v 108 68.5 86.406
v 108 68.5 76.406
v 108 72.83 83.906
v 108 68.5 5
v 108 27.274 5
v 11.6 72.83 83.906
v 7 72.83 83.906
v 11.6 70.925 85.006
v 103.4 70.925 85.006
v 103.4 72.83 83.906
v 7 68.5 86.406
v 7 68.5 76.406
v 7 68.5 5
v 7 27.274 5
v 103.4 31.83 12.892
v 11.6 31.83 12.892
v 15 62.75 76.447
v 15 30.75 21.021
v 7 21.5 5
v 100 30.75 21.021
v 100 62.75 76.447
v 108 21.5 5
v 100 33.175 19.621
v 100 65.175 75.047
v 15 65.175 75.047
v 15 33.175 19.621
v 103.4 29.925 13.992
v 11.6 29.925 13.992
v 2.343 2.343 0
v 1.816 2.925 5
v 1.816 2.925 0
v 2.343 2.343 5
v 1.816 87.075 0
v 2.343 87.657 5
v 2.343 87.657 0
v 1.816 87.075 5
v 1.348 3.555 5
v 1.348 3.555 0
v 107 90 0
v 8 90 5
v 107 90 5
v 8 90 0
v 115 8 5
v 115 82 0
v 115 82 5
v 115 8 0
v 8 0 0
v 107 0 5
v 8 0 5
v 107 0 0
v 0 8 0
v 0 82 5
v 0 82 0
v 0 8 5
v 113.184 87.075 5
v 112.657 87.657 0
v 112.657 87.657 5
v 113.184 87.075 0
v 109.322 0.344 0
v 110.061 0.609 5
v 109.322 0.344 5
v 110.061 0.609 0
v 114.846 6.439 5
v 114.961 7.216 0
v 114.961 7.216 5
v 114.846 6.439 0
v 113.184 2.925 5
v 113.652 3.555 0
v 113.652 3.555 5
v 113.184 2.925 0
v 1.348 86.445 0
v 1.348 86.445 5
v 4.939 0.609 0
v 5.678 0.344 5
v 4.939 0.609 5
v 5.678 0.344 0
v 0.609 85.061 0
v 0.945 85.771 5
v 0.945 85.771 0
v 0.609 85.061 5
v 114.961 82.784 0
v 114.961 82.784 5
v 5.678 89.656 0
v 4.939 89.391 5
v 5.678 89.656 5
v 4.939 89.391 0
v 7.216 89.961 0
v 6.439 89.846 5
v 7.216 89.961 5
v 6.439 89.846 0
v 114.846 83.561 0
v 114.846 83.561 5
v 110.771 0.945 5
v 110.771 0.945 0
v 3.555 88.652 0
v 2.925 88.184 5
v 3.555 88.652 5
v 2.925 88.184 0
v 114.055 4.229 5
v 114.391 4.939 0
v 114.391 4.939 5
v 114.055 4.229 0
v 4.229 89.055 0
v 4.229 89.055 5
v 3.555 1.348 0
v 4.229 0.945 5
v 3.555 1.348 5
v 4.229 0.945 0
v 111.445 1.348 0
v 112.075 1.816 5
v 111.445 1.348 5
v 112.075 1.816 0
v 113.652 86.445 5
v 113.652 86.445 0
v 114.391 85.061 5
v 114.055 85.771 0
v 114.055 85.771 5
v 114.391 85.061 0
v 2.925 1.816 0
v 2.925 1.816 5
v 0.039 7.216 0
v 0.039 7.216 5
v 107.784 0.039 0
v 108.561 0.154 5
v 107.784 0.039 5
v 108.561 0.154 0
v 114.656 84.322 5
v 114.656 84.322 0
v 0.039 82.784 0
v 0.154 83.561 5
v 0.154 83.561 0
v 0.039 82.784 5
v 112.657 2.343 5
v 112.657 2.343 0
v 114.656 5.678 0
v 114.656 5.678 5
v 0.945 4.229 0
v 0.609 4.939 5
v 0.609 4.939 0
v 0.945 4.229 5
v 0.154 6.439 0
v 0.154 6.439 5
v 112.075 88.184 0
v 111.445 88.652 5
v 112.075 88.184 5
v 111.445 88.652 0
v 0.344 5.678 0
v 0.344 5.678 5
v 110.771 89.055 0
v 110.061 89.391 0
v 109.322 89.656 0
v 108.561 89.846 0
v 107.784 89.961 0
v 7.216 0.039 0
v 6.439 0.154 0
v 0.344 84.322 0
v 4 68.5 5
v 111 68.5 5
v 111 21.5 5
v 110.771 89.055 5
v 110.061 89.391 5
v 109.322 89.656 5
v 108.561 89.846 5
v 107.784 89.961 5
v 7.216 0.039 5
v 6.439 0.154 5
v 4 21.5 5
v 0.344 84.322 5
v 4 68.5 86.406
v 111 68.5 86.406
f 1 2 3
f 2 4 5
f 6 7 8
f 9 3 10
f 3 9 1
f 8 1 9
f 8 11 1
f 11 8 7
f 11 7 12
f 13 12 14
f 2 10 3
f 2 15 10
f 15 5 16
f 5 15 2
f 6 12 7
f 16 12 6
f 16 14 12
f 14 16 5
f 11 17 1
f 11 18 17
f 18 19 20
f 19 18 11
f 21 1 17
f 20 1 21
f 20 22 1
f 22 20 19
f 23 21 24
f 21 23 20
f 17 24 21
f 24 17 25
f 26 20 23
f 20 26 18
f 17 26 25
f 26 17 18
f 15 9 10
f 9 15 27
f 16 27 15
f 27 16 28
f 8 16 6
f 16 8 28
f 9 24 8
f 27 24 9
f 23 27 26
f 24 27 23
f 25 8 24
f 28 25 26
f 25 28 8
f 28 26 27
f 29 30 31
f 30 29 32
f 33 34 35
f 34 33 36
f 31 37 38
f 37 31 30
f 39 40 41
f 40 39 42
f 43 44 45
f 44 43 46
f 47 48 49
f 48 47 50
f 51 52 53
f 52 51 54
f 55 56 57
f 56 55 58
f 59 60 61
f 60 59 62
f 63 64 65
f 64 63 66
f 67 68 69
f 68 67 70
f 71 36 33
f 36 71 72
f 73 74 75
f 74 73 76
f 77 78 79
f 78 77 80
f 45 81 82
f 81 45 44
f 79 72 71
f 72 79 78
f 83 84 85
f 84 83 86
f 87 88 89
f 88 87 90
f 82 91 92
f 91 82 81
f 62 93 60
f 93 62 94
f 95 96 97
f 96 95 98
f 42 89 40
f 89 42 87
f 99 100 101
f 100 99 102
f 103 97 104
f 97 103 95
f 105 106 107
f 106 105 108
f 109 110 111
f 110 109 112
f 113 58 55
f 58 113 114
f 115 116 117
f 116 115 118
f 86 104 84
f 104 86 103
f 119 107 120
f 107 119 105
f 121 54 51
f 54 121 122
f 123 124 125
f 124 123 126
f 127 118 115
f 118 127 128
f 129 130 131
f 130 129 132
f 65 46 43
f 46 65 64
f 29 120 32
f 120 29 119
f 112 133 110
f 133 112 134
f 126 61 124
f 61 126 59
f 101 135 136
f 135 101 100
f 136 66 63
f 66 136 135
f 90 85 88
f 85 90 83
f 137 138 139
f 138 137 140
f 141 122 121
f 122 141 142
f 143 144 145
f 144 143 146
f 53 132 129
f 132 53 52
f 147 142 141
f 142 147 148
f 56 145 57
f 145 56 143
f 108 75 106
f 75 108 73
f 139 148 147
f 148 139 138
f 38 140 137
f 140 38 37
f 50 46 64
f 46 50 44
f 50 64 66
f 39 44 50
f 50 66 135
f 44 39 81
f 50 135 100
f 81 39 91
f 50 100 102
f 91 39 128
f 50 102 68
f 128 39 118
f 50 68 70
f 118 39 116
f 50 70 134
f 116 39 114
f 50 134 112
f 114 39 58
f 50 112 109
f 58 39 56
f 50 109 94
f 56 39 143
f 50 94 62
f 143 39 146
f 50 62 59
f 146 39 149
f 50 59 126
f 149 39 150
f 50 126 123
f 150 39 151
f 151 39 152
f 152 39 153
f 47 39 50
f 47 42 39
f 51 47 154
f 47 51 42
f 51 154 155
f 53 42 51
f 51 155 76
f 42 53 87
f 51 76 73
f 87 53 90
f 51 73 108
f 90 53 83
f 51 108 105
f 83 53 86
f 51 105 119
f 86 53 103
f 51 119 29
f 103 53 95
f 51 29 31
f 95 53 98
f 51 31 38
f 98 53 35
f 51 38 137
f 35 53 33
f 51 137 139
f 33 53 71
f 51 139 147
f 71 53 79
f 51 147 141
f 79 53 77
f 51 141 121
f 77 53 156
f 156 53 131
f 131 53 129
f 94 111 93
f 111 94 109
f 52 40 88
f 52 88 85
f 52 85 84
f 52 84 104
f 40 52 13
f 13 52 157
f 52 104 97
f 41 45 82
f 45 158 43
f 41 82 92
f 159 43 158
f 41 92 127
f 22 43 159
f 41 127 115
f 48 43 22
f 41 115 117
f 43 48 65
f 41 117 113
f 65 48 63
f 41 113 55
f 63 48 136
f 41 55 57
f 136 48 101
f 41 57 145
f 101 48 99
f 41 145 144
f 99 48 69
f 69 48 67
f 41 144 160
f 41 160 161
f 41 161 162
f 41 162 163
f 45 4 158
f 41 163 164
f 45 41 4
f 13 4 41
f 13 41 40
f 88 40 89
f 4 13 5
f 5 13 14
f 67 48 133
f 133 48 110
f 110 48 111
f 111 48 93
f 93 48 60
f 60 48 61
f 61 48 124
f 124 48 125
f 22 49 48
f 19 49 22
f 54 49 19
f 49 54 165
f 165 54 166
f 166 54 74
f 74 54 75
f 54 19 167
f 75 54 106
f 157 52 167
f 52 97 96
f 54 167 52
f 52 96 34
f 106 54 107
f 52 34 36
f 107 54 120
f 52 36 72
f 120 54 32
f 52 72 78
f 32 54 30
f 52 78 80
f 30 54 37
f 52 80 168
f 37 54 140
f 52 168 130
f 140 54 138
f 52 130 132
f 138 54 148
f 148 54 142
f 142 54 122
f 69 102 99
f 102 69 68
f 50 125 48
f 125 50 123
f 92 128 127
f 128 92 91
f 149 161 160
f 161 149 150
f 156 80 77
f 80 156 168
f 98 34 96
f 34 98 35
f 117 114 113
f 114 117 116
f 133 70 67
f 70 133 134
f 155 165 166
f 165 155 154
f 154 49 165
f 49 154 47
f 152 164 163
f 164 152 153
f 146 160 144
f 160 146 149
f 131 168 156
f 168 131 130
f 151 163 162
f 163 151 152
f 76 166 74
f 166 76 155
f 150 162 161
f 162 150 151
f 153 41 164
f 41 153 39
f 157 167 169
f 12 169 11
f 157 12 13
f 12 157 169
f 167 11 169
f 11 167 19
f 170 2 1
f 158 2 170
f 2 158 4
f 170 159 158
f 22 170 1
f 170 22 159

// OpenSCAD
// ═══════════════════════════════════════════════════════════════════
//  Inky wHAT Desk Stand
//  Pimoroni Inky wHAT (4.2" ePaper, 400×300 px)
//  Inky wHAT PCB : 91 × 77 mm
//  Raspberry Pi Zero PCB : 65 × 30 mm  (stacks behind via GPIO header)
// ═══════════════════════════════════════════════════════════════════

/* [Inky wHAT PCB] */
pcb_w     = 91;    // PCB width  (mm)
pcb_h     = 77;    // PCB height (mm)
pcb_t     = 1.6;   // PCB thickness

/* [Display Window] */
disp_w     = 85;   // cutout width   (active area 84.8 mm, rounded up)
disp_h     = 64;   // cutout height  (active area 63.6 mm, rounded up)
disp_x_pcb = 3.0;  // display left edge offset from PCB left edge  ≈ (91-85)/2
disp_y_pcb = 6.5;  // display bottom edge offset from PCB bottom   ≈ (77-64)/2

/* [Face Plate] */
margin_side  = 5;    // clearance left / right of PCB
margin_top   = 5;    // clearance above PCB
margin_bot   = 12;   // clearance below PCB  ← keeps RPi Zero clear of base
face_wall    = 5;    // total face plate thickness  (front skin + pocket)
pocket_depth = 2.2;  // PCB recess depth on back face  (≥ pcb_t + tolerance)
pocket_tol   = 0.4;  // fit clearance around PCB in pocket

/* [Stand Geometry] */
tilt      = 60;   // face angle from horizontal (degrees)

/* [Base] */
base_w    = 115;
base_d    = 90;
base_t    = 5;
corner_r  = 8;

/* [Side Supports] */
sup_t     = 3;

$fn = 64;

// ── derived ──────────────────────────────────────────────────────
face_w = pcb_w + margin_side * 2;          // 101 mm
face_h = margin_bot + pcb_h + margin_top;  // 94 mm

proj_y = face_h * cos(tilt);
proj_z = face_h * sin(tilt);

face_x0 = (base_w - face_w) / 2;
face_y0 = (base_d - proj_y) / 2;

// PCB bottom-left corner in face-plate local coords
pcb_x0 = margin_side;
pcb_z0 = margin_bot;

// ── assembly ─────────────────────────────────────────────────────
union() {
    base();
    face_plate();
    translate([face_x0 - sup_t, face_y0, base_t]) side_triangle();
    translate([face_x0 + face_w, face_y0, base_t]) side_triangle();
}

// ── modules ──────────────────────────────────────────────────────

module base() {
    hull()
        for (x = [corner_r, base_w - corner_r],
             y = [corner_r, base_d - corner_r])
            translate([x, y, 0])
                cylinder(r = corner_r, h = base_t);
}

// Face plate with:
//   • Through-hole display window — viewer sees ePaper through front face
//   • Back-face PCB pocket — Inky wHAT slides in from the top
//     The solid material below pcb_z0 forms the retaining ledge.
//   • RPi Zero hangs freely behind Inky wHAT on the GPIO header;
//     margin_bot is sized so it clears the base at 60° tilt.
module face_plate() {
    translate([face_x0, face_y0, base_t])
    rotate([-(90 - tilt), 0, 0])
    difference() {
        // Solid face slab
        cube([face_w, face_wall, face_h]);

        // ① Display window — full through-hole so the ePaper is visible
        translate([pcb_x0 + disp_x_pcb, -1, pcb_z0 + disp_y_pcb])
            cube([disp_w, face_wall + 2, disp_h]);

        // ② PCB pocket — channel recessed into the back face, open at top
        //    PCB slides straight down and rests on the solid ledge at z = pcb_z0.
        //    Uncut material below pcb_z0 (margin_bot) is the retaining ledge.
        translate([pcb_x0 - pocket_tol,
                   face_wall - pocket_depth,
                   pcb_z0])
            cube([pcb_w + pocket_tol * 2,
                  pocket_depth + 1,       // +1 opens the back face flush
                  face_h - pcb_z0 + 1]); // extends past top → open slot
    }
}

// Right-triangle side-support brace.
// Profile in the Y-Z plane; extruded sup_t along X.
module side_triangle() {
    multmatrix([
        [0, 0, 1, 0],   // world X ← local Z  (extrusion)
        [1, 0, 0, 0],   // world Y ← local X
        [0, 1, 0, 0],   // world Z ← local Y
        [0, 0, 0, 1]
    ])
    linear_extrude(sup_t)
    polygon([[0, 0], [proj_y, 0], [proj_y, proj_z]]);
}
